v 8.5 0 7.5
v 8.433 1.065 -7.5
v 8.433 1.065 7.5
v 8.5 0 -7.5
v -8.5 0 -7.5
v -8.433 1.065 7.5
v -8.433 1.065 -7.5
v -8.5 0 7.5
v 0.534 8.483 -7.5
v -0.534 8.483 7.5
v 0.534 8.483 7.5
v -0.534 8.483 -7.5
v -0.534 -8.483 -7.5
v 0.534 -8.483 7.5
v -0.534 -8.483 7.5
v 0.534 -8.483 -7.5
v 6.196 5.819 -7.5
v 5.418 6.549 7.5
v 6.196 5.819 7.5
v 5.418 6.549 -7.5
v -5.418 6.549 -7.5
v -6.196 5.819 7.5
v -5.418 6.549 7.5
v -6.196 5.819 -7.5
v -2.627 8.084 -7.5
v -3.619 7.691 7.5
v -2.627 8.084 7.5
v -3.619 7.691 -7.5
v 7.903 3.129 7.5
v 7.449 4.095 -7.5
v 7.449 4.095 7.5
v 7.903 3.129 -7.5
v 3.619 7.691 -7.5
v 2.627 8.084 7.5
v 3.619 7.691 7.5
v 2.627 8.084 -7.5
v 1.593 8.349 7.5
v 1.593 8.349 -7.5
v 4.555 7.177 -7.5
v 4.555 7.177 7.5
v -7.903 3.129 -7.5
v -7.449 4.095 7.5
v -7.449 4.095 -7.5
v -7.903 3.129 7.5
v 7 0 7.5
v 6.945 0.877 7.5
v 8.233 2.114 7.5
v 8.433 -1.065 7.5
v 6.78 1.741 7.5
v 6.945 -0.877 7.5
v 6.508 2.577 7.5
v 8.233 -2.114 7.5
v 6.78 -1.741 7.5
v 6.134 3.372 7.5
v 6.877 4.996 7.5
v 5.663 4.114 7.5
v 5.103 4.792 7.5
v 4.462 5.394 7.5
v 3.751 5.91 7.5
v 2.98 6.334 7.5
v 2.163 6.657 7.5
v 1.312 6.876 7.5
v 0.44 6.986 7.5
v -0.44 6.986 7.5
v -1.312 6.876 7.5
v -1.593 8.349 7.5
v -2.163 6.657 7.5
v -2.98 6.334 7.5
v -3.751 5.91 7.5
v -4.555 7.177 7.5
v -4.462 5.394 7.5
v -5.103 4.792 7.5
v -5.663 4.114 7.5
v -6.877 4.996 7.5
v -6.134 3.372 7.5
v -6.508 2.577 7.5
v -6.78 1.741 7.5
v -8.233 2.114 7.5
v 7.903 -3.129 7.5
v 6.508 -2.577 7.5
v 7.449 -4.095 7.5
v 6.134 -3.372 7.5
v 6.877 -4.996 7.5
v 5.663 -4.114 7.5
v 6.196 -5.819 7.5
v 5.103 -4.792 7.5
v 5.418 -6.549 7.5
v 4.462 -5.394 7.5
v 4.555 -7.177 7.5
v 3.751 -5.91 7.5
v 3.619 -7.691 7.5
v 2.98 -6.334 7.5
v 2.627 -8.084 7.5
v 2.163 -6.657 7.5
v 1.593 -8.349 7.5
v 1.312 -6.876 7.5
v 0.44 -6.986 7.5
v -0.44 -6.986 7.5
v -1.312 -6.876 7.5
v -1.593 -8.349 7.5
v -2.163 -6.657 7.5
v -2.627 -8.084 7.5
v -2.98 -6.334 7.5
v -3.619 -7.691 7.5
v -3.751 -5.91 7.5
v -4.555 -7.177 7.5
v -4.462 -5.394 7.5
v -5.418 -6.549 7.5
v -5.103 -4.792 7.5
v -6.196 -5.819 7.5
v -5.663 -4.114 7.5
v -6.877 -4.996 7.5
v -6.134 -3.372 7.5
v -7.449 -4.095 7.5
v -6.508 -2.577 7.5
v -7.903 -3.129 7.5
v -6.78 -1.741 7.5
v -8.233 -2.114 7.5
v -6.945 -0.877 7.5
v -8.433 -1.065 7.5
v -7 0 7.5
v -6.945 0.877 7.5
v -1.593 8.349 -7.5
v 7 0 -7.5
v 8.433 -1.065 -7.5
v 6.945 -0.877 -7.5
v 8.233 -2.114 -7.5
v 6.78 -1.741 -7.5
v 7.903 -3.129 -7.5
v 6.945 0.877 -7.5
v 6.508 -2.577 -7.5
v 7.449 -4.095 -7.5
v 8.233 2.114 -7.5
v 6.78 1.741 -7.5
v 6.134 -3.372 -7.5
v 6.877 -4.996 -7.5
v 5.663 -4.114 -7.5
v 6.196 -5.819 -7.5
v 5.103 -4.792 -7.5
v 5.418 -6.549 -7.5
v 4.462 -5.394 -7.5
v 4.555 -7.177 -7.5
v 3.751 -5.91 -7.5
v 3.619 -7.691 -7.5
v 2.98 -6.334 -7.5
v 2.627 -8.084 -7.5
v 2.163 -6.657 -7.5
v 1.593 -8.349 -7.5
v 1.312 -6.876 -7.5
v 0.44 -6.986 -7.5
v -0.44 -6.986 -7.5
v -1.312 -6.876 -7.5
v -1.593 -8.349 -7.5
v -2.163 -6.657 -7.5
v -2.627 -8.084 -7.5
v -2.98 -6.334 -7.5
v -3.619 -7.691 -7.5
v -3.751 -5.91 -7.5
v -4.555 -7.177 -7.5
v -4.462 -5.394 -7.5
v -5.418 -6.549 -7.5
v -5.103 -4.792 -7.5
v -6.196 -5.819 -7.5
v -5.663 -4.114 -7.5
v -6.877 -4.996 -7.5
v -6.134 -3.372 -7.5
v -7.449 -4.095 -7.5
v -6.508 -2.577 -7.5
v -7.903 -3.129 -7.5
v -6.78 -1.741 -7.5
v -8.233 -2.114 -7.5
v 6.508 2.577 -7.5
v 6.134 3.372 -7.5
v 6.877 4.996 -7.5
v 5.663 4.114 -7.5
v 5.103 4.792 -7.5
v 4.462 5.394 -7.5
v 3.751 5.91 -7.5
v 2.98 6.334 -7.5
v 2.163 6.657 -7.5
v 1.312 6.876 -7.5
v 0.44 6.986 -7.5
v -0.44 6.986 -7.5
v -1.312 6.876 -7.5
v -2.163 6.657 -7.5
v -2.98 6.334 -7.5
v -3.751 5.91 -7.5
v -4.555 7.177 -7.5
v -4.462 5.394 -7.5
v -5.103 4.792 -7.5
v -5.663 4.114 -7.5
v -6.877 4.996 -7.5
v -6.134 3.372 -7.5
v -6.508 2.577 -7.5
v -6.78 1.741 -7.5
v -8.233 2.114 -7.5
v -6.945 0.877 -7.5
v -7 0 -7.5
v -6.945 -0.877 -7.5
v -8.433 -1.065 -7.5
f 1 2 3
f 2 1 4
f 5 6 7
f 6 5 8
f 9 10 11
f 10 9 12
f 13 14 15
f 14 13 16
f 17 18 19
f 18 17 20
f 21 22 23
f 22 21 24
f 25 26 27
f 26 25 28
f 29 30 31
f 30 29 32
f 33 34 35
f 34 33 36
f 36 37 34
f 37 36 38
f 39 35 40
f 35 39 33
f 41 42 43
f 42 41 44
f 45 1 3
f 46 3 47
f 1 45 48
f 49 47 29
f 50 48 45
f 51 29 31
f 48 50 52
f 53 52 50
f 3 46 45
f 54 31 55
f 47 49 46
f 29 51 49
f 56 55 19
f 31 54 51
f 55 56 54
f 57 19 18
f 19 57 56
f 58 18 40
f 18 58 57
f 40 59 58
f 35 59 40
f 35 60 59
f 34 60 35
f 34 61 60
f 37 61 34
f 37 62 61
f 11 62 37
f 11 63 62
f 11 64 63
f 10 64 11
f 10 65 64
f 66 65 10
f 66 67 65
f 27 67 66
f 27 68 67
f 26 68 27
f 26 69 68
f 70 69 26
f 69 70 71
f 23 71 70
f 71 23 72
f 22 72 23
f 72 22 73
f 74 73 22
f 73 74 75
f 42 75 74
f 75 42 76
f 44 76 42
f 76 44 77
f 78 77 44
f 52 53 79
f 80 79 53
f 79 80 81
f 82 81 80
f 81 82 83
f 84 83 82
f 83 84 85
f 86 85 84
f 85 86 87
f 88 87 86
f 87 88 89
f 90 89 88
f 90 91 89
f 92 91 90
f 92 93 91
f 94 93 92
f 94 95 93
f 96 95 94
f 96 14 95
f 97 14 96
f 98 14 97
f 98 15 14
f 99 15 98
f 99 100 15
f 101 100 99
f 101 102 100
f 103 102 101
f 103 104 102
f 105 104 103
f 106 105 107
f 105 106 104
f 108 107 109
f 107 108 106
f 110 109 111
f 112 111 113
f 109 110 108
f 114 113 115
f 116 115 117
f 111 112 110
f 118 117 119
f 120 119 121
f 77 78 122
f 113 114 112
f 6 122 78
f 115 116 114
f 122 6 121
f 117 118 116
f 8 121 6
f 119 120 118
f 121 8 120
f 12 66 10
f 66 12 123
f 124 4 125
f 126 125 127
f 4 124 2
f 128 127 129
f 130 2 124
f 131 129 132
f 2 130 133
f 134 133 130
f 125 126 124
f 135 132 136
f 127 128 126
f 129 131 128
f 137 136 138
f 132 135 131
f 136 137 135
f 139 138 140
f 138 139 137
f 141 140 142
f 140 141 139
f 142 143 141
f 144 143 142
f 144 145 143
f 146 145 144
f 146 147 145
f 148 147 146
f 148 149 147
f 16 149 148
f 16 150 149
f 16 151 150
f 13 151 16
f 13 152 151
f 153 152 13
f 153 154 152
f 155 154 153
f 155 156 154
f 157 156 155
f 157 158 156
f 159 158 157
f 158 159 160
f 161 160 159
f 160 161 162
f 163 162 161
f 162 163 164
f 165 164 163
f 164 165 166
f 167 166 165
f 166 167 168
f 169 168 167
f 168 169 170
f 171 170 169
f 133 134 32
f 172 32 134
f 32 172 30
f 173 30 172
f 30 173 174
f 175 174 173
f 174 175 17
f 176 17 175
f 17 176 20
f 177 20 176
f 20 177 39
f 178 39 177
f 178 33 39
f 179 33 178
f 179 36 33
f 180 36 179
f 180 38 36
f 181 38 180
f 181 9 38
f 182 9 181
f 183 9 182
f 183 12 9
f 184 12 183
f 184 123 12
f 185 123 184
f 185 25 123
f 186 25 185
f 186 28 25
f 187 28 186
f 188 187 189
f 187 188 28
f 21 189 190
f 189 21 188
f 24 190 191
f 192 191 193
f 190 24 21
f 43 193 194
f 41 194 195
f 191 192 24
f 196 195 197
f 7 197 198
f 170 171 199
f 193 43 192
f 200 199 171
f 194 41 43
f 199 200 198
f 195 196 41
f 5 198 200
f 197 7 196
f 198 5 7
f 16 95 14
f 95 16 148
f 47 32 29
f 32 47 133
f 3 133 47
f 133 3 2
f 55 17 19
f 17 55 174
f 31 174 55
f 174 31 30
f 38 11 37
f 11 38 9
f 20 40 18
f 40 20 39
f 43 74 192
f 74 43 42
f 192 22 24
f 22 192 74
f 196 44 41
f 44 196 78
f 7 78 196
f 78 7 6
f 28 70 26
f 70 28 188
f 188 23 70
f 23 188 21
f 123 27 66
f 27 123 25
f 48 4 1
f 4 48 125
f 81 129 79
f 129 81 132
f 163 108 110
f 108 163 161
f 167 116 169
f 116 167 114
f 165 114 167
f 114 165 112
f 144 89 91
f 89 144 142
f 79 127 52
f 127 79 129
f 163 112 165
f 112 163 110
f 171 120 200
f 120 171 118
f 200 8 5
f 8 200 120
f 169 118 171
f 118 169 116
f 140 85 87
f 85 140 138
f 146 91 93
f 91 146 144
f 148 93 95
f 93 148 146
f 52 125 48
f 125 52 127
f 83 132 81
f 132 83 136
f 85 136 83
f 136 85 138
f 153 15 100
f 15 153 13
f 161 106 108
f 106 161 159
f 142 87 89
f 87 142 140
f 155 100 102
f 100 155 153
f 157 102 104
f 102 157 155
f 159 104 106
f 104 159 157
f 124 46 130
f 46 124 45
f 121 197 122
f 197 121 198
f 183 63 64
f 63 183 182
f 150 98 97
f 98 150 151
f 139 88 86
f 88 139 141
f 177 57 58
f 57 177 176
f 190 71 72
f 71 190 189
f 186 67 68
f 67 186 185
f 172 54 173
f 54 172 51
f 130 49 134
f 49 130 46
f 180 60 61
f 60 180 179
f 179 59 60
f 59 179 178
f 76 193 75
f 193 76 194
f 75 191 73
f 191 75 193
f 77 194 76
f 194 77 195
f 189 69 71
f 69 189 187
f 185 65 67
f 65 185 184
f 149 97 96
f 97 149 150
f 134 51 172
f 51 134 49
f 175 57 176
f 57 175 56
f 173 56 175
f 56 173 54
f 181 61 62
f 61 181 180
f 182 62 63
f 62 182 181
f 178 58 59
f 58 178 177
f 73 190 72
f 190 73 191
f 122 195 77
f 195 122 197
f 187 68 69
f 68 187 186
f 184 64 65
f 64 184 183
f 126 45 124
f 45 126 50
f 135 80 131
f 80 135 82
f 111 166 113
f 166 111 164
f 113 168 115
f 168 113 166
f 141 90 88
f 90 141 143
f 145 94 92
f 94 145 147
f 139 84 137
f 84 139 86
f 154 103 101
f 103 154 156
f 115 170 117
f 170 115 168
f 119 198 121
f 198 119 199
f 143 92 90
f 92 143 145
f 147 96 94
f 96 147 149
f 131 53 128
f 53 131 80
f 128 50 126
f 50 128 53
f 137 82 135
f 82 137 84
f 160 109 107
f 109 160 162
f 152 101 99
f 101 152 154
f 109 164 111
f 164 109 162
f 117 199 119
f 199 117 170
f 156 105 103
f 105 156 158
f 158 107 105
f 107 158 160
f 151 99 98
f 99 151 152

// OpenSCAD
$fn = 50;


difference() {
	union() {
		translate(v = [0, 0, -7.5000000000]) {
			cylinder(h = 15, r = 8.5000000000);
		}
	}
	union() {
		translate(v = [0, 0, -100.0000000000]) {
			cylinder(h = 200, r = 7);
		}
	}
}
